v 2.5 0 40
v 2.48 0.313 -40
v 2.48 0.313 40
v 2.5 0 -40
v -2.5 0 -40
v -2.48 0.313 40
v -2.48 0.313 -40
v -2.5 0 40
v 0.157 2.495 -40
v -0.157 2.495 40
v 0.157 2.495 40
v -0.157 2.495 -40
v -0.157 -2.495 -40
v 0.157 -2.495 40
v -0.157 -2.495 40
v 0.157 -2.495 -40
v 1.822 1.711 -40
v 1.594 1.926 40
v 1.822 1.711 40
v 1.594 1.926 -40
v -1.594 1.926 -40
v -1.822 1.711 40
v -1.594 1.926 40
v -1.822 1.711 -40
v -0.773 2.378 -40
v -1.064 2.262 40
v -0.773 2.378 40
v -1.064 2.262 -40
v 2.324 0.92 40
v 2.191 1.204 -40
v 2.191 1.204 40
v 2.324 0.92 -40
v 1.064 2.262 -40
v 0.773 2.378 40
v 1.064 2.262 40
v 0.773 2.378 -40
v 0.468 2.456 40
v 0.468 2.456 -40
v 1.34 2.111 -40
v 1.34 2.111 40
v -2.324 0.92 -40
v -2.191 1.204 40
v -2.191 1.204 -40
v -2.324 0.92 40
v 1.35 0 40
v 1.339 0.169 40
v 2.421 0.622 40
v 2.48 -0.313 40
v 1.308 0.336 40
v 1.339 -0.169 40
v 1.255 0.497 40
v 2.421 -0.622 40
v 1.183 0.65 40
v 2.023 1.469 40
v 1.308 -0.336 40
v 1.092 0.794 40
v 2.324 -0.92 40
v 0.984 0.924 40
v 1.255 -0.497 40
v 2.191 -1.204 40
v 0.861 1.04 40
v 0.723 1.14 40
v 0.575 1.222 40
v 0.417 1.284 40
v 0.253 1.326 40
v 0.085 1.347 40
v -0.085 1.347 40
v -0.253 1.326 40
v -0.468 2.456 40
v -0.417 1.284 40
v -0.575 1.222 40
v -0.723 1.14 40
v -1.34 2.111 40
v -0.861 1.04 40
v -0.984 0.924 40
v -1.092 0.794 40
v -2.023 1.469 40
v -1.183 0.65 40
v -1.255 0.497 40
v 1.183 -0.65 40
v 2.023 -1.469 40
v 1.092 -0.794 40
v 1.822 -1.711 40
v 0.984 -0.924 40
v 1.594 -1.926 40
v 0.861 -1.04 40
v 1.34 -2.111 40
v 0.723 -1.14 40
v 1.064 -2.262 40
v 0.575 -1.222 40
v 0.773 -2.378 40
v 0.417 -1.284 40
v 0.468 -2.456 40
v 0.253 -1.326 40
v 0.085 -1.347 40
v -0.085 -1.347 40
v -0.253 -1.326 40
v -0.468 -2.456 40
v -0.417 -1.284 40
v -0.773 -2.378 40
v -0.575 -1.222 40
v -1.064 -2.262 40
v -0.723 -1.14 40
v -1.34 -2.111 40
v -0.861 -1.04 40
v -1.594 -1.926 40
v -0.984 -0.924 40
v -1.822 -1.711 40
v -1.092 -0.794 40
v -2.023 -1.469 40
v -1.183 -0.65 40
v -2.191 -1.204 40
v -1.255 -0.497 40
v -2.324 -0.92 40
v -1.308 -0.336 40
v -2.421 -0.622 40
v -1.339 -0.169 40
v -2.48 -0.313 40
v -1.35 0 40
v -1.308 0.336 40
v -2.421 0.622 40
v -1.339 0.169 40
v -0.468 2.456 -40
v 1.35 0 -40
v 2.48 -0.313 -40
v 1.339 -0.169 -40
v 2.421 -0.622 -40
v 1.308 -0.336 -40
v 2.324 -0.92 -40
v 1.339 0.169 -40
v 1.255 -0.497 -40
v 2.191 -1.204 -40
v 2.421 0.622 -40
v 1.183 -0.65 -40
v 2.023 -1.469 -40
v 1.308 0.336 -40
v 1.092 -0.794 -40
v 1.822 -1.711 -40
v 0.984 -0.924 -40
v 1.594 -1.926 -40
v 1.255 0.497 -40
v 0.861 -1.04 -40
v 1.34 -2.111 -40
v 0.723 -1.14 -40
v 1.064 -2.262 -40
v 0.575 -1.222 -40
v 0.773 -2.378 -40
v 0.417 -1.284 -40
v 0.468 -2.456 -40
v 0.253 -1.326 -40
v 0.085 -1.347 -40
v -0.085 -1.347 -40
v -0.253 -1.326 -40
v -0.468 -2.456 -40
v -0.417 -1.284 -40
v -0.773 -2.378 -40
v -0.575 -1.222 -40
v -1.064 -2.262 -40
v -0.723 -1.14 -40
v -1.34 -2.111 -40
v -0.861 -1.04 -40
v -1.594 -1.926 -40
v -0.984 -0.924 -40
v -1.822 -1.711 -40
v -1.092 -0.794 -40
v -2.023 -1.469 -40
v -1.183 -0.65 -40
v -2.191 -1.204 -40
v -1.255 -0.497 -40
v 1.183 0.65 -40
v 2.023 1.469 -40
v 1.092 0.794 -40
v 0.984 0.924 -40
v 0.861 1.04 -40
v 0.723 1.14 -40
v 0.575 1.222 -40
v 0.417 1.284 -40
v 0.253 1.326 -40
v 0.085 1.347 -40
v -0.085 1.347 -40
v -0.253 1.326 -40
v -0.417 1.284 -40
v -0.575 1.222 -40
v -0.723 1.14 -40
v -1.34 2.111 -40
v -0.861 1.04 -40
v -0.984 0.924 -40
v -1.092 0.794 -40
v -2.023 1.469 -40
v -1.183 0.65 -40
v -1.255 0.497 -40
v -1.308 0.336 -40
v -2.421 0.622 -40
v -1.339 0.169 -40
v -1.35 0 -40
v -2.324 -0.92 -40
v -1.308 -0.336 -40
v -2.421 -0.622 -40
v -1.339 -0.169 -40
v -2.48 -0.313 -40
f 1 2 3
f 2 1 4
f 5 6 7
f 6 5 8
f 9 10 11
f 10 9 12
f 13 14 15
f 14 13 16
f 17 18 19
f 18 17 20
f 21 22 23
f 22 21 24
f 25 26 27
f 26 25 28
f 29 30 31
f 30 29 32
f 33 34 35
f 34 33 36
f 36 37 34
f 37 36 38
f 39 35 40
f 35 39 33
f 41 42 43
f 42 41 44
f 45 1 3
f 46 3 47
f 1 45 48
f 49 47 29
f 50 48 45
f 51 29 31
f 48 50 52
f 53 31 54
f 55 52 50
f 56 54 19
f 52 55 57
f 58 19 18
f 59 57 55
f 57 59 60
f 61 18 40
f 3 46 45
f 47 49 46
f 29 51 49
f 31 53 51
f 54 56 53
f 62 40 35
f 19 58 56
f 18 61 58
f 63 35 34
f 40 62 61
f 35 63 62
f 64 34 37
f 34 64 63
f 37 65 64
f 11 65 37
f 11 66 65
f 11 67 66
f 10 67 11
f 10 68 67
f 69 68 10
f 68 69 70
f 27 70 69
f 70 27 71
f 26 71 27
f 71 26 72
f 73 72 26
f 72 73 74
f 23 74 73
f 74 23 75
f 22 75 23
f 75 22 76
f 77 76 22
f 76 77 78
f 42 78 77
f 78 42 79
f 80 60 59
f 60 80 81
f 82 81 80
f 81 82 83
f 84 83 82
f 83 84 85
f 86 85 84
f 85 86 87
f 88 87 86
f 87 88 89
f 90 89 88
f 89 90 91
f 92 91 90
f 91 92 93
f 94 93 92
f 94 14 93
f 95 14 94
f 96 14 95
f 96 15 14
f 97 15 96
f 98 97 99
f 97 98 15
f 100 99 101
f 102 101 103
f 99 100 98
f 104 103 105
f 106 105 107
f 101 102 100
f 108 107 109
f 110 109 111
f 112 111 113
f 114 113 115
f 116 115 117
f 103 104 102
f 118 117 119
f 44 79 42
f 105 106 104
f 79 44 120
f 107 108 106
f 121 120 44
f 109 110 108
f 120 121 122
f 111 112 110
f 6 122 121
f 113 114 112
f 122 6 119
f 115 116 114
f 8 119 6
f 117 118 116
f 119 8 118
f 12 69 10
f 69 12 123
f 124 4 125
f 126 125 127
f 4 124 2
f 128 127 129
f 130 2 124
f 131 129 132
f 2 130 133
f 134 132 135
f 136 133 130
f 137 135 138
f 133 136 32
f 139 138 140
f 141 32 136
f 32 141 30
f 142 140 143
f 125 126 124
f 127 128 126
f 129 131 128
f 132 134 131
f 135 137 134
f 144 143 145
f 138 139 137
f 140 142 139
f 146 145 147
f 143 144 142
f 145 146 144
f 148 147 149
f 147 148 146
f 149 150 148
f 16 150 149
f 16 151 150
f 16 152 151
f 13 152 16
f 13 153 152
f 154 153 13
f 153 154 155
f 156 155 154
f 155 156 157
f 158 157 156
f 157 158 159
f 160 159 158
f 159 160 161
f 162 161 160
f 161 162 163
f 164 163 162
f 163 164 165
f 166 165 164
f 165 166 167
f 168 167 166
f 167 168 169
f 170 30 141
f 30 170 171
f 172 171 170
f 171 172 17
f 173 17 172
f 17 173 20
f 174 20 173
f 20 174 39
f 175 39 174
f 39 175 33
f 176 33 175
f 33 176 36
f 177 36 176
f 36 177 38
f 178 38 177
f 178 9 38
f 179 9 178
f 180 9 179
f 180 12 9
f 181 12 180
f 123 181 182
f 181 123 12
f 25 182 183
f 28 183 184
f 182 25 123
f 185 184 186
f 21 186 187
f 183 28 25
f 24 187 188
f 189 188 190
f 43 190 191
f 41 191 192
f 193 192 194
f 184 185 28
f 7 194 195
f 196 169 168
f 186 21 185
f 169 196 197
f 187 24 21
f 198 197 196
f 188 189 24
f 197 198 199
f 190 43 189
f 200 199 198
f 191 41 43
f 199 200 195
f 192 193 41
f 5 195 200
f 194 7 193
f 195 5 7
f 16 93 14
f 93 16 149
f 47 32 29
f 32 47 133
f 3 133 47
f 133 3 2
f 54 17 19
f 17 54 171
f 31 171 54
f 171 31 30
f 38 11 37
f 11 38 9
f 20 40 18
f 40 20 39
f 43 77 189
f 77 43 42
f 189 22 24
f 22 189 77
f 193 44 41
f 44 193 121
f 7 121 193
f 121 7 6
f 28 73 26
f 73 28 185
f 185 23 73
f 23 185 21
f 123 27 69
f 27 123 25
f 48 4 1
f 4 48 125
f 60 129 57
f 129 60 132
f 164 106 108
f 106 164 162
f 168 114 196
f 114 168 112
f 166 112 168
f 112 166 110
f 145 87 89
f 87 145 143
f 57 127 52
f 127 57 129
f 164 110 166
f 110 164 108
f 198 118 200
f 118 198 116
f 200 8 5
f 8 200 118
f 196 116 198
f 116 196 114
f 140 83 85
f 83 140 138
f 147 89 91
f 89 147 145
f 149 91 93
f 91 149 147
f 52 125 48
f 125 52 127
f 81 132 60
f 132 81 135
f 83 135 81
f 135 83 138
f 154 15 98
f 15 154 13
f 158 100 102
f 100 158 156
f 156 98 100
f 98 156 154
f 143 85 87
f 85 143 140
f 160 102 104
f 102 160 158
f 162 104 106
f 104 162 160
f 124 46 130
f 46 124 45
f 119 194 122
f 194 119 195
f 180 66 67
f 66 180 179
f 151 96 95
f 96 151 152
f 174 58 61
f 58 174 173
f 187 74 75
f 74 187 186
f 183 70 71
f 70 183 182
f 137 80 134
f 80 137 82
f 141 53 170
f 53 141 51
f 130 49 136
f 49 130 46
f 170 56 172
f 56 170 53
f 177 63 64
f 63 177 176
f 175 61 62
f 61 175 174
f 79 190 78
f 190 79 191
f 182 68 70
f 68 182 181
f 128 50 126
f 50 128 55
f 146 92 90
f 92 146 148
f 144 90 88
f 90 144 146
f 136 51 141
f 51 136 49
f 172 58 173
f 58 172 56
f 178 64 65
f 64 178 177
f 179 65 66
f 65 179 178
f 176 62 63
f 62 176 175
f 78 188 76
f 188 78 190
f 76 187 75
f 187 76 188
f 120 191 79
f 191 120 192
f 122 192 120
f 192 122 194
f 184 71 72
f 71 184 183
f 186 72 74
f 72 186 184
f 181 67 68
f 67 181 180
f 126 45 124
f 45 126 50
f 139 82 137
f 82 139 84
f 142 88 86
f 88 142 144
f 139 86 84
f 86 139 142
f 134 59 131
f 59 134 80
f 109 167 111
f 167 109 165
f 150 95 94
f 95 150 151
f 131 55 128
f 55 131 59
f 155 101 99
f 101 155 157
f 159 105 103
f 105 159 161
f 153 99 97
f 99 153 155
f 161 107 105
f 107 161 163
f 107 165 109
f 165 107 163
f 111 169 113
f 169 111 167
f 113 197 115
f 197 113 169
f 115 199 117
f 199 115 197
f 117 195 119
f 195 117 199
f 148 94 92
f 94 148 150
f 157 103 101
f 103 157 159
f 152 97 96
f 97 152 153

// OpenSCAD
$fn = 50;


difference() {
	union() {
		translate(v = [0, 0, -40.0000000000]) {
			cylinder(h = 80, r = 2.5000000000);
		}
	}
	union() {
		translate(v = [0, 0, -100.0000000000]) {
			cylinder(h = 200, r = 1.3500000000);
		}
	}
}
